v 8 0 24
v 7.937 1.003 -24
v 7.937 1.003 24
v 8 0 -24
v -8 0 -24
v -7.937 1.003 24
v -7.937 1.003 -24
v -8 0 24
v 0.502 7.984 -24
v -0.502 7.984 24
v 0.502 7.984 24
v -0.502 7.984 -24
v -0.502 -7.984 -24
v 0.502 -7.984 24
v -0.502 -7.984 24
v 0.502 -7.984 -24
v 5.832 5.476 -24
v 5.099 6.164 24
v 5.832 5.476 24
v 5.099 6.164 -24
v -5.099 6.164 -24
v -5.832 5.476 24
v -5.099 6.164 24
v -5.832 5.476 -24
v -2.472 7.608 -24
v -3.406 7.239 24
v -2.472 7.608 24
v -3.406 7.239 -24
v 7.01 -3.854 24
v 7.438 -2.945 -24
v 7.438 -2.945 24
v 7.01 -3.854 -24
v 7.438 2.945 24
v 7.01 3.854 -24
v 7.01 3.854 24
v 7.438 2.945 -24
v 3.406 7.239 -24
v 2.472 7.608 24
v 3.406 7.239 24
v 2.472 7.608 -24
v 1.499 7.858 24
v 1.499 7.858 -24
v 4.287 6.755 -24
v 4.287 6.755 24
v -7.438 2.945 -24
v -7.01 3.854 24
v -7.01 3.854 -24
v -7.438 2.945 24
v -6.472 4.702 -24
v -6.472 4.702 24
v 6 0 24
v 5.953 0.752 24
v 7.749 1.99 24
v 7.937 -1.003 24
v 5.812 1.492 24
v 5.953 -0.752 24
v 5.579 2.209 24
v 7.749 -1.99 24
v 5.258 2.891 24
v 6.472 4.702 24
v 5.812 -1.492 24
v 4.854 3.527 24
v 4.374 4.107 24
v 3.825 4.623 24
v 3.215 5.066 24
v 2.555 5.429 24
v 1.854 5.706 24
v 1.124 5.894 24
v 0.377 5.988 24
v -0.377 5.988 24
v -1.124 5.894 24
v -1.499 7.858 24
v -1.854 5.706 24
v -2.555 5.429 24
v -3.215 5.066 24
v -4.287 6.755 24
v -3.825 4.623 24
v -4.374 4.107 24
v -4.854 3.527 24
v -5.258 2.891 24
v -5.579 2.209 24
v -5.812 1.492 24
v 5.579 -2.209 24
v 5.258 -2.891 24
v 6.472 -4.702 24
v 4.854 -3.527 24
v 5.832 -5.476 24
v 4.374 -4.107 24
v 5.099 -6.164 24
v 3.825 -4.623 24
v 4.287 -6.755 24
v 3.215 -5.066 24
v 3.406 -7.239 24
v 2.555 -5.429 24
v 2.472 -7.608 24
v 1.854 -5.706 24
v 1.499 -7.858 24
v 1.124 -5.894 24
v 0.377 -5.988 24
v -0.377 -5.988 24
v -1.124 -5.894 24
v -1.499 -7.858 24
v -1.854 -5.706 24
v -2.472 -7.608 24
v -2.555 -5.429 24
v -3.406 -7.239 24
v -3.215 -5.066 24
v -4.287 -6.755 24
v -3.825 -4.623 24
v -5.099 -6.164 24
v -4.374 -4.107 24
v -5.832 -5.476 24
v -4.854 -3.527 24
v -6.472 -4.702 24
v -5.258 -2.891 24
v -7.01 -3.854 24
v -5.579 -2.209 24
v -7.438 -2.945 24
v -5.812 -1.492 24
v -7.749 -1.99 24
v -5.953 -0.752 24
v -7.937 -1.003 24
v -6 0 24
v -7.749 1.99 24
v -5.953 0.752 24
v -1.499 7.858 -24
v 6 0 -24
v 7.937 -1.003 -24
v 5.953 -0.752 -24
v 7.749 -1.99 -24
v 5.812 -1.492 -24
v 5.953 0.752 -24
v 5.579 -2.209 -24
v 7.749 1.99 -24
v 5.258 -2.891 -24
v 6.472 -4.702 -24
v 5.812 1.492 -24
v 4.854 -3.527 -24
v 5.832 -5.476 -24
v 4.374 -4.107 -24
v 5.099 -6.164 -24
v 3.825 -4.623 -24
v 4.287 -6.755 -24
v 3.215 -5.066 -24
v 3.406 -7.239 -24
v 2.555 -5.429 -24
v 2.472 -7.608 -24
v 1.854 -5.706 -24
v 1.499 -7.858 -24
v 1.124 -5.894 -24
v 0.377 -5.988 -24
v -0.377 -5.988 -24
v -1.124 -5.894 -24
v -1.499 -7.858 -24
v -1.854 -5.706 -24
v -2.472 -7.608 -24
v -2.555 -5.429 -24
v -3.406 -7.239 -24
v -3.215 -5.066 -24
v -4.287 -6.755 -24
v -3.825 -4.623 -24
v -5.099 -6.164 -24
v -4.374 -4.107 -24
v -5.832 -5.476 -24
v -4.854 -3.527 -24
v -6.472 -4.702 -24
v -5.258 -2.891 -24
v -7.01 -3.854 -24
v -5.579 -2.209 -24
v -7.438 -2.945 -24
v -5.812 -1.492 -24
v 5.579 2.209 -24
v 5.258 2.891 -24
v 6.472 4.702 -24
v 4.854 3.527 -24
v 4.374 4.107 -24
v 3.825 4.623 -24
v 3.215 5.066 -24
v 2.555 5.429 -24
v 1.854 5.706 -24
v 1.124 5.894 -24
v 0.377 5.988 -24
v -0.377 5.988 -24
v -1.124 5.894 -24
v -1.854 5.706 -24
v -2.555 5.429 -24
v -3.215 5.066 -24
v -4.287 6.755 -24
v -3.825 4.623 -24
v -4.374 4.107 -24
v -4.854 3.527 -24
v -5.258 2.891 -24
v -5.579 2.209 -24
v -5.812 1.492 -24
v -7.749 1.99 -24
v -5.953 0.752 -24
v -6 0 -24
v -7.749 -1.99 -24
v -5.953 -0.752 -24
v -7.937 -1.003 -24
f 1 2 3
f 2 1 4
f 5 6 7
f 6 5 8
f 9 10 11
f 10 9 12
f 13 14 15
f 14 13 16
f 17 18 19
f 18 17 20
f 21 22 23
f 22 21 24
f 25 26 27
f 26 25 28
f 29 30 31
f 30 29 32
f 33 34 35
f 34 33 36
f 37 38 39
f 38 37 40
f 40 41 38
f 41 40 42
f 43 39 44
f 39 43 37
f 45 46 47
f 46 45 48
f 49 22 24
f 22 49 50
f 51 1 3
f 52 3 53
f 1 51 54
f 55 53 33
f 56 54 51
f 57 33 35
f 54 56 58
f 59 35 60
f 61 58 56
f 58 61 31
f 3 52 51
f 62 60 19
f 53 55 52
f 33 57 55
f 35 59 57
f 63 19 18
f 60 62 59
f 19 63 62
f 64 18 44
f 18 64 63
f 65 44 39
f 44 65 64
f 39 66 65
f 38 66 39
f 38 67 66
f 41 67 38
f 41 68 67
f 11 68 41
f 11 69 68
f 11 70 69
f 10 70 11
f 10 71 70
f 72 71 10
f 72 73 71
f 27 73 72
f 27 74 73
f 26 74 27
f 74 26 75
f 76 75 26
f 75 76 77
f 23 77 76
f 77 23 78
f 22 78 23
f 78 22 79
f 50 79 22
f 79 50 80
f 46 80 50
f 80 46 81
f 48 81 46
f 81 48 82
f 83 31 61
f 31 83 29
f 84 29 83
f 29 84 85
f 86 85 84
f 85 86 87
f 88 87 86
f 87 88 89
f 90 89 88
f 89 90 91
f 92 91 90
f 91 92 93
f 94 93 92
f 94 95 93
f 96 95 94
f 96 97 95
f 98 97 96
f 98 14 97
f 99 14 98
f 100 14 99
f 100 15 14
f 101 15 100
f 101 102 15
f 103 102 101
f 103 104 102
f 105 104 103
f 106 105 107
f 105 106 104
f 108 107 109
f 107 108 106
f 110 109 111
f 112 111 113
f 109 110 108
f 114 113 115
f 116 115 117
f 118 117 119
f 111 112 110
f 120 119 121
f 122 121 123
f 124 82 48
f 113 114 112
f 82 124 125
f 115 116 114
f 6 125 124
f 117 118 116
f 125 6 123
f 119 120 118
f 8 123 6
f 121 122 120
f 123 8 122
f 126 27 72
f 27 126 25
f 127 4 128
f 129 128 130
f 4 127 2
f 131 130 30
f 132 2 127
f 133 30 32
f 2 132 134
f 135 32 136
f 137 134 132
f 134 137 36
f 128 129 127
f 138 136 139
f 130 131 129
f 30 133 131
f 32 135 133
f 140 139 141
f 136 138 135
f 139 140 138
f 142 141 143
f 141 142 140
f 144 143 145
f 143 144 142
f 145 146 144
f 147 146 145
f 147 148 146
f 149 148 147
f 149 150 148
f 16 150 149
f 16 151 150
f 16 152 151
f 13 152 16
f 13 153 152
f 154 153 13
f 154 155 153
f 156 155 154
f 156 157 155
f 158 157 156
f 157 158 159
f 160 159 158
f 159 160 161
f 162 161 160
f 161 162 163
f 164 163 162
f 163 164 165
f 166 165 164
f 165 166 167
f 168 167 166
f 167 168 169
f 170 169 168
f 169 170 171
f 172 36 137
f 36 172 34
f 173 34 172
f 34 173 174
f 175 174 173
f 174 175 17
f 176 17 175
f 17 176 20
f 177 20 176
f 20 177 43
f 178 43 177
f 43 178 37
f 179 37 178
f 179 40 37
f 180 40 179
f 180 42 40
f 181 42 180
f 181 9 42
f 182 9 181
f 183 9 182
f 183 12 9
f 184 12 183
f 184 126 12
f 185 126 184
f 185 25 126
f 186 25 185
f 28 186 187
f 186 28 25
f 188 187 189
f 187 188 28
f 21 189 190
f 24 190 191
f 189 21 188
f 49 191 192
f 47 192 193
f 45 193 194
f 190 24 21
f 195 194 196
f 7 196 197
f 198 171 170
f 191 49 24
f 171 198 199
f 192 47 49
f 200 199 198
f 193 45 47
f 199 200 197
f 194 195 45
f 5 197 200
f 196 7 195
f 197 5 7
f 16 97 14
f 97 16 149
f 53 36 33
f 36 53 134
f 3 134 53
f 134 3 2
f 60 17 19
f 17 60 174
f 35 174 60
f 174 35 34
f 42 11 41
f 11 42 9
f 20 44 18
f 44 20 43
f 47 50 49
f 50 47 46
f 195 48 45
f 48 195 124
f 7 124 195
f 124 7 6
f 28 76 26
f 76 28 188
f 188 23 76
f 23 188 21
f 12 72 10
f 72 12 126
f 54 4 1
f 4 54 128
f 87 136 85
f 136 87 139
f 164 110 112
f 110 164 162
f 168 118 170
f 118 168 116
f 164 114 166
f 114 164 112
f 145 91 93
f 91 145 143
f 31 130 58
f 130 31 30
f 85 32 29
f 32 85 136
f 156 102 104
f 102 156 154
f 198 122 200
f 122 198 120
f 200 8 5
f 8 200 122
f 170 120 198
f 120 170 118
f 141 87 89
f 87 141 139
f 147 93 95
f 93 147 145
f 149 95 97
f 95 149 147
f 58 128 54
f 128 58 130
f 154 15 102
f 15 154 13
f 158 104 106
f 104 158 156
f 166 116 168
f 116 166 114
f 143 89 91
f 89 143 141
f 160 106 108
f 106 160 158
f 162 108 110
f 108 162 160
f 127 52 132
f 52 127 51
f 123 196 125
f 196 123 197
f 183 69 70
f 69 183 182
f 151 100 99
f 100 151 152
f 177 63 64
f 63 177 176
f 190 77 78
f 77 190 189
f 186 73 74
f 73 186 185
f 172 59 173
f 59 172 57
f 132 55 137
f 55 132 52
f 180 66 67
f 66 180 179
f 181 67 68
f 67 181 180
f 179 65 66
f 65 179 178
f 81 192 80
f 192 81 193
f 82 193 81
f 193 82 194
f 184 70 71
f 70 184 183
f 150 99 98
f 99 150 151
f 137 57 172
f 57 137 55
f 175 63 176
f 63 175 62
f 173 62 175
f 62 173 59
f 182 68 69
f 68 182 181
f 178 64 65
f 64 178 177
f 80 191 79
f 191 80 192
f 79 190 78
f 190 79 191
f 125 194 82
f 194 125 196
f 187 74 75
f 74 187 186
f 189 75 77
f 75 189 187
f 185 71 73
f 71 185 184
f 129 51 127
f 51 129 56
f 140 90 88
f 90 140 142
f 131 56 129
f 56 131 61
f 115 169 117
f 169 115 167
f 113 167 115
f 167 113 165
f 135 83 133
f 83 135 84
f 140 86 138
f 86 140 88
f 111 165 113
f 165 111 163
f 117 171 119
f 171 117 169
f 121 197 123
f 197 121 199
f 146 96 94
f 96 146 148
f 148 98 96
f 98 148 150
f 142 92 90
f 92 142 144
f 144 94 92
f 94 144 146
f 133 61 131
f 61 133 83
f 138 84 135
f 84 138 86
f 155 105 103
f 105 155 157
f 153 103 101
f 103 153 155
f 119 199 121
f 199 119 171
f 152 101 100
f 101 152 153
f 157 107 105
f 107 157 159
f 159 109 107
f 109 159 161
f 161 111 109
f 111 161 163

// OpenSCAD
$fn = 50;


difference() {
	union() {
		translate(v = [0, 0, -24.0000000000]) {
			cylinder(h = 48, r = 8.0000000000);
		}
	}
	union() {
		translate(v = [0, 0, -100.0000000000]) {
			cylinder(h = 200, r = 6);
		}
	}
}
